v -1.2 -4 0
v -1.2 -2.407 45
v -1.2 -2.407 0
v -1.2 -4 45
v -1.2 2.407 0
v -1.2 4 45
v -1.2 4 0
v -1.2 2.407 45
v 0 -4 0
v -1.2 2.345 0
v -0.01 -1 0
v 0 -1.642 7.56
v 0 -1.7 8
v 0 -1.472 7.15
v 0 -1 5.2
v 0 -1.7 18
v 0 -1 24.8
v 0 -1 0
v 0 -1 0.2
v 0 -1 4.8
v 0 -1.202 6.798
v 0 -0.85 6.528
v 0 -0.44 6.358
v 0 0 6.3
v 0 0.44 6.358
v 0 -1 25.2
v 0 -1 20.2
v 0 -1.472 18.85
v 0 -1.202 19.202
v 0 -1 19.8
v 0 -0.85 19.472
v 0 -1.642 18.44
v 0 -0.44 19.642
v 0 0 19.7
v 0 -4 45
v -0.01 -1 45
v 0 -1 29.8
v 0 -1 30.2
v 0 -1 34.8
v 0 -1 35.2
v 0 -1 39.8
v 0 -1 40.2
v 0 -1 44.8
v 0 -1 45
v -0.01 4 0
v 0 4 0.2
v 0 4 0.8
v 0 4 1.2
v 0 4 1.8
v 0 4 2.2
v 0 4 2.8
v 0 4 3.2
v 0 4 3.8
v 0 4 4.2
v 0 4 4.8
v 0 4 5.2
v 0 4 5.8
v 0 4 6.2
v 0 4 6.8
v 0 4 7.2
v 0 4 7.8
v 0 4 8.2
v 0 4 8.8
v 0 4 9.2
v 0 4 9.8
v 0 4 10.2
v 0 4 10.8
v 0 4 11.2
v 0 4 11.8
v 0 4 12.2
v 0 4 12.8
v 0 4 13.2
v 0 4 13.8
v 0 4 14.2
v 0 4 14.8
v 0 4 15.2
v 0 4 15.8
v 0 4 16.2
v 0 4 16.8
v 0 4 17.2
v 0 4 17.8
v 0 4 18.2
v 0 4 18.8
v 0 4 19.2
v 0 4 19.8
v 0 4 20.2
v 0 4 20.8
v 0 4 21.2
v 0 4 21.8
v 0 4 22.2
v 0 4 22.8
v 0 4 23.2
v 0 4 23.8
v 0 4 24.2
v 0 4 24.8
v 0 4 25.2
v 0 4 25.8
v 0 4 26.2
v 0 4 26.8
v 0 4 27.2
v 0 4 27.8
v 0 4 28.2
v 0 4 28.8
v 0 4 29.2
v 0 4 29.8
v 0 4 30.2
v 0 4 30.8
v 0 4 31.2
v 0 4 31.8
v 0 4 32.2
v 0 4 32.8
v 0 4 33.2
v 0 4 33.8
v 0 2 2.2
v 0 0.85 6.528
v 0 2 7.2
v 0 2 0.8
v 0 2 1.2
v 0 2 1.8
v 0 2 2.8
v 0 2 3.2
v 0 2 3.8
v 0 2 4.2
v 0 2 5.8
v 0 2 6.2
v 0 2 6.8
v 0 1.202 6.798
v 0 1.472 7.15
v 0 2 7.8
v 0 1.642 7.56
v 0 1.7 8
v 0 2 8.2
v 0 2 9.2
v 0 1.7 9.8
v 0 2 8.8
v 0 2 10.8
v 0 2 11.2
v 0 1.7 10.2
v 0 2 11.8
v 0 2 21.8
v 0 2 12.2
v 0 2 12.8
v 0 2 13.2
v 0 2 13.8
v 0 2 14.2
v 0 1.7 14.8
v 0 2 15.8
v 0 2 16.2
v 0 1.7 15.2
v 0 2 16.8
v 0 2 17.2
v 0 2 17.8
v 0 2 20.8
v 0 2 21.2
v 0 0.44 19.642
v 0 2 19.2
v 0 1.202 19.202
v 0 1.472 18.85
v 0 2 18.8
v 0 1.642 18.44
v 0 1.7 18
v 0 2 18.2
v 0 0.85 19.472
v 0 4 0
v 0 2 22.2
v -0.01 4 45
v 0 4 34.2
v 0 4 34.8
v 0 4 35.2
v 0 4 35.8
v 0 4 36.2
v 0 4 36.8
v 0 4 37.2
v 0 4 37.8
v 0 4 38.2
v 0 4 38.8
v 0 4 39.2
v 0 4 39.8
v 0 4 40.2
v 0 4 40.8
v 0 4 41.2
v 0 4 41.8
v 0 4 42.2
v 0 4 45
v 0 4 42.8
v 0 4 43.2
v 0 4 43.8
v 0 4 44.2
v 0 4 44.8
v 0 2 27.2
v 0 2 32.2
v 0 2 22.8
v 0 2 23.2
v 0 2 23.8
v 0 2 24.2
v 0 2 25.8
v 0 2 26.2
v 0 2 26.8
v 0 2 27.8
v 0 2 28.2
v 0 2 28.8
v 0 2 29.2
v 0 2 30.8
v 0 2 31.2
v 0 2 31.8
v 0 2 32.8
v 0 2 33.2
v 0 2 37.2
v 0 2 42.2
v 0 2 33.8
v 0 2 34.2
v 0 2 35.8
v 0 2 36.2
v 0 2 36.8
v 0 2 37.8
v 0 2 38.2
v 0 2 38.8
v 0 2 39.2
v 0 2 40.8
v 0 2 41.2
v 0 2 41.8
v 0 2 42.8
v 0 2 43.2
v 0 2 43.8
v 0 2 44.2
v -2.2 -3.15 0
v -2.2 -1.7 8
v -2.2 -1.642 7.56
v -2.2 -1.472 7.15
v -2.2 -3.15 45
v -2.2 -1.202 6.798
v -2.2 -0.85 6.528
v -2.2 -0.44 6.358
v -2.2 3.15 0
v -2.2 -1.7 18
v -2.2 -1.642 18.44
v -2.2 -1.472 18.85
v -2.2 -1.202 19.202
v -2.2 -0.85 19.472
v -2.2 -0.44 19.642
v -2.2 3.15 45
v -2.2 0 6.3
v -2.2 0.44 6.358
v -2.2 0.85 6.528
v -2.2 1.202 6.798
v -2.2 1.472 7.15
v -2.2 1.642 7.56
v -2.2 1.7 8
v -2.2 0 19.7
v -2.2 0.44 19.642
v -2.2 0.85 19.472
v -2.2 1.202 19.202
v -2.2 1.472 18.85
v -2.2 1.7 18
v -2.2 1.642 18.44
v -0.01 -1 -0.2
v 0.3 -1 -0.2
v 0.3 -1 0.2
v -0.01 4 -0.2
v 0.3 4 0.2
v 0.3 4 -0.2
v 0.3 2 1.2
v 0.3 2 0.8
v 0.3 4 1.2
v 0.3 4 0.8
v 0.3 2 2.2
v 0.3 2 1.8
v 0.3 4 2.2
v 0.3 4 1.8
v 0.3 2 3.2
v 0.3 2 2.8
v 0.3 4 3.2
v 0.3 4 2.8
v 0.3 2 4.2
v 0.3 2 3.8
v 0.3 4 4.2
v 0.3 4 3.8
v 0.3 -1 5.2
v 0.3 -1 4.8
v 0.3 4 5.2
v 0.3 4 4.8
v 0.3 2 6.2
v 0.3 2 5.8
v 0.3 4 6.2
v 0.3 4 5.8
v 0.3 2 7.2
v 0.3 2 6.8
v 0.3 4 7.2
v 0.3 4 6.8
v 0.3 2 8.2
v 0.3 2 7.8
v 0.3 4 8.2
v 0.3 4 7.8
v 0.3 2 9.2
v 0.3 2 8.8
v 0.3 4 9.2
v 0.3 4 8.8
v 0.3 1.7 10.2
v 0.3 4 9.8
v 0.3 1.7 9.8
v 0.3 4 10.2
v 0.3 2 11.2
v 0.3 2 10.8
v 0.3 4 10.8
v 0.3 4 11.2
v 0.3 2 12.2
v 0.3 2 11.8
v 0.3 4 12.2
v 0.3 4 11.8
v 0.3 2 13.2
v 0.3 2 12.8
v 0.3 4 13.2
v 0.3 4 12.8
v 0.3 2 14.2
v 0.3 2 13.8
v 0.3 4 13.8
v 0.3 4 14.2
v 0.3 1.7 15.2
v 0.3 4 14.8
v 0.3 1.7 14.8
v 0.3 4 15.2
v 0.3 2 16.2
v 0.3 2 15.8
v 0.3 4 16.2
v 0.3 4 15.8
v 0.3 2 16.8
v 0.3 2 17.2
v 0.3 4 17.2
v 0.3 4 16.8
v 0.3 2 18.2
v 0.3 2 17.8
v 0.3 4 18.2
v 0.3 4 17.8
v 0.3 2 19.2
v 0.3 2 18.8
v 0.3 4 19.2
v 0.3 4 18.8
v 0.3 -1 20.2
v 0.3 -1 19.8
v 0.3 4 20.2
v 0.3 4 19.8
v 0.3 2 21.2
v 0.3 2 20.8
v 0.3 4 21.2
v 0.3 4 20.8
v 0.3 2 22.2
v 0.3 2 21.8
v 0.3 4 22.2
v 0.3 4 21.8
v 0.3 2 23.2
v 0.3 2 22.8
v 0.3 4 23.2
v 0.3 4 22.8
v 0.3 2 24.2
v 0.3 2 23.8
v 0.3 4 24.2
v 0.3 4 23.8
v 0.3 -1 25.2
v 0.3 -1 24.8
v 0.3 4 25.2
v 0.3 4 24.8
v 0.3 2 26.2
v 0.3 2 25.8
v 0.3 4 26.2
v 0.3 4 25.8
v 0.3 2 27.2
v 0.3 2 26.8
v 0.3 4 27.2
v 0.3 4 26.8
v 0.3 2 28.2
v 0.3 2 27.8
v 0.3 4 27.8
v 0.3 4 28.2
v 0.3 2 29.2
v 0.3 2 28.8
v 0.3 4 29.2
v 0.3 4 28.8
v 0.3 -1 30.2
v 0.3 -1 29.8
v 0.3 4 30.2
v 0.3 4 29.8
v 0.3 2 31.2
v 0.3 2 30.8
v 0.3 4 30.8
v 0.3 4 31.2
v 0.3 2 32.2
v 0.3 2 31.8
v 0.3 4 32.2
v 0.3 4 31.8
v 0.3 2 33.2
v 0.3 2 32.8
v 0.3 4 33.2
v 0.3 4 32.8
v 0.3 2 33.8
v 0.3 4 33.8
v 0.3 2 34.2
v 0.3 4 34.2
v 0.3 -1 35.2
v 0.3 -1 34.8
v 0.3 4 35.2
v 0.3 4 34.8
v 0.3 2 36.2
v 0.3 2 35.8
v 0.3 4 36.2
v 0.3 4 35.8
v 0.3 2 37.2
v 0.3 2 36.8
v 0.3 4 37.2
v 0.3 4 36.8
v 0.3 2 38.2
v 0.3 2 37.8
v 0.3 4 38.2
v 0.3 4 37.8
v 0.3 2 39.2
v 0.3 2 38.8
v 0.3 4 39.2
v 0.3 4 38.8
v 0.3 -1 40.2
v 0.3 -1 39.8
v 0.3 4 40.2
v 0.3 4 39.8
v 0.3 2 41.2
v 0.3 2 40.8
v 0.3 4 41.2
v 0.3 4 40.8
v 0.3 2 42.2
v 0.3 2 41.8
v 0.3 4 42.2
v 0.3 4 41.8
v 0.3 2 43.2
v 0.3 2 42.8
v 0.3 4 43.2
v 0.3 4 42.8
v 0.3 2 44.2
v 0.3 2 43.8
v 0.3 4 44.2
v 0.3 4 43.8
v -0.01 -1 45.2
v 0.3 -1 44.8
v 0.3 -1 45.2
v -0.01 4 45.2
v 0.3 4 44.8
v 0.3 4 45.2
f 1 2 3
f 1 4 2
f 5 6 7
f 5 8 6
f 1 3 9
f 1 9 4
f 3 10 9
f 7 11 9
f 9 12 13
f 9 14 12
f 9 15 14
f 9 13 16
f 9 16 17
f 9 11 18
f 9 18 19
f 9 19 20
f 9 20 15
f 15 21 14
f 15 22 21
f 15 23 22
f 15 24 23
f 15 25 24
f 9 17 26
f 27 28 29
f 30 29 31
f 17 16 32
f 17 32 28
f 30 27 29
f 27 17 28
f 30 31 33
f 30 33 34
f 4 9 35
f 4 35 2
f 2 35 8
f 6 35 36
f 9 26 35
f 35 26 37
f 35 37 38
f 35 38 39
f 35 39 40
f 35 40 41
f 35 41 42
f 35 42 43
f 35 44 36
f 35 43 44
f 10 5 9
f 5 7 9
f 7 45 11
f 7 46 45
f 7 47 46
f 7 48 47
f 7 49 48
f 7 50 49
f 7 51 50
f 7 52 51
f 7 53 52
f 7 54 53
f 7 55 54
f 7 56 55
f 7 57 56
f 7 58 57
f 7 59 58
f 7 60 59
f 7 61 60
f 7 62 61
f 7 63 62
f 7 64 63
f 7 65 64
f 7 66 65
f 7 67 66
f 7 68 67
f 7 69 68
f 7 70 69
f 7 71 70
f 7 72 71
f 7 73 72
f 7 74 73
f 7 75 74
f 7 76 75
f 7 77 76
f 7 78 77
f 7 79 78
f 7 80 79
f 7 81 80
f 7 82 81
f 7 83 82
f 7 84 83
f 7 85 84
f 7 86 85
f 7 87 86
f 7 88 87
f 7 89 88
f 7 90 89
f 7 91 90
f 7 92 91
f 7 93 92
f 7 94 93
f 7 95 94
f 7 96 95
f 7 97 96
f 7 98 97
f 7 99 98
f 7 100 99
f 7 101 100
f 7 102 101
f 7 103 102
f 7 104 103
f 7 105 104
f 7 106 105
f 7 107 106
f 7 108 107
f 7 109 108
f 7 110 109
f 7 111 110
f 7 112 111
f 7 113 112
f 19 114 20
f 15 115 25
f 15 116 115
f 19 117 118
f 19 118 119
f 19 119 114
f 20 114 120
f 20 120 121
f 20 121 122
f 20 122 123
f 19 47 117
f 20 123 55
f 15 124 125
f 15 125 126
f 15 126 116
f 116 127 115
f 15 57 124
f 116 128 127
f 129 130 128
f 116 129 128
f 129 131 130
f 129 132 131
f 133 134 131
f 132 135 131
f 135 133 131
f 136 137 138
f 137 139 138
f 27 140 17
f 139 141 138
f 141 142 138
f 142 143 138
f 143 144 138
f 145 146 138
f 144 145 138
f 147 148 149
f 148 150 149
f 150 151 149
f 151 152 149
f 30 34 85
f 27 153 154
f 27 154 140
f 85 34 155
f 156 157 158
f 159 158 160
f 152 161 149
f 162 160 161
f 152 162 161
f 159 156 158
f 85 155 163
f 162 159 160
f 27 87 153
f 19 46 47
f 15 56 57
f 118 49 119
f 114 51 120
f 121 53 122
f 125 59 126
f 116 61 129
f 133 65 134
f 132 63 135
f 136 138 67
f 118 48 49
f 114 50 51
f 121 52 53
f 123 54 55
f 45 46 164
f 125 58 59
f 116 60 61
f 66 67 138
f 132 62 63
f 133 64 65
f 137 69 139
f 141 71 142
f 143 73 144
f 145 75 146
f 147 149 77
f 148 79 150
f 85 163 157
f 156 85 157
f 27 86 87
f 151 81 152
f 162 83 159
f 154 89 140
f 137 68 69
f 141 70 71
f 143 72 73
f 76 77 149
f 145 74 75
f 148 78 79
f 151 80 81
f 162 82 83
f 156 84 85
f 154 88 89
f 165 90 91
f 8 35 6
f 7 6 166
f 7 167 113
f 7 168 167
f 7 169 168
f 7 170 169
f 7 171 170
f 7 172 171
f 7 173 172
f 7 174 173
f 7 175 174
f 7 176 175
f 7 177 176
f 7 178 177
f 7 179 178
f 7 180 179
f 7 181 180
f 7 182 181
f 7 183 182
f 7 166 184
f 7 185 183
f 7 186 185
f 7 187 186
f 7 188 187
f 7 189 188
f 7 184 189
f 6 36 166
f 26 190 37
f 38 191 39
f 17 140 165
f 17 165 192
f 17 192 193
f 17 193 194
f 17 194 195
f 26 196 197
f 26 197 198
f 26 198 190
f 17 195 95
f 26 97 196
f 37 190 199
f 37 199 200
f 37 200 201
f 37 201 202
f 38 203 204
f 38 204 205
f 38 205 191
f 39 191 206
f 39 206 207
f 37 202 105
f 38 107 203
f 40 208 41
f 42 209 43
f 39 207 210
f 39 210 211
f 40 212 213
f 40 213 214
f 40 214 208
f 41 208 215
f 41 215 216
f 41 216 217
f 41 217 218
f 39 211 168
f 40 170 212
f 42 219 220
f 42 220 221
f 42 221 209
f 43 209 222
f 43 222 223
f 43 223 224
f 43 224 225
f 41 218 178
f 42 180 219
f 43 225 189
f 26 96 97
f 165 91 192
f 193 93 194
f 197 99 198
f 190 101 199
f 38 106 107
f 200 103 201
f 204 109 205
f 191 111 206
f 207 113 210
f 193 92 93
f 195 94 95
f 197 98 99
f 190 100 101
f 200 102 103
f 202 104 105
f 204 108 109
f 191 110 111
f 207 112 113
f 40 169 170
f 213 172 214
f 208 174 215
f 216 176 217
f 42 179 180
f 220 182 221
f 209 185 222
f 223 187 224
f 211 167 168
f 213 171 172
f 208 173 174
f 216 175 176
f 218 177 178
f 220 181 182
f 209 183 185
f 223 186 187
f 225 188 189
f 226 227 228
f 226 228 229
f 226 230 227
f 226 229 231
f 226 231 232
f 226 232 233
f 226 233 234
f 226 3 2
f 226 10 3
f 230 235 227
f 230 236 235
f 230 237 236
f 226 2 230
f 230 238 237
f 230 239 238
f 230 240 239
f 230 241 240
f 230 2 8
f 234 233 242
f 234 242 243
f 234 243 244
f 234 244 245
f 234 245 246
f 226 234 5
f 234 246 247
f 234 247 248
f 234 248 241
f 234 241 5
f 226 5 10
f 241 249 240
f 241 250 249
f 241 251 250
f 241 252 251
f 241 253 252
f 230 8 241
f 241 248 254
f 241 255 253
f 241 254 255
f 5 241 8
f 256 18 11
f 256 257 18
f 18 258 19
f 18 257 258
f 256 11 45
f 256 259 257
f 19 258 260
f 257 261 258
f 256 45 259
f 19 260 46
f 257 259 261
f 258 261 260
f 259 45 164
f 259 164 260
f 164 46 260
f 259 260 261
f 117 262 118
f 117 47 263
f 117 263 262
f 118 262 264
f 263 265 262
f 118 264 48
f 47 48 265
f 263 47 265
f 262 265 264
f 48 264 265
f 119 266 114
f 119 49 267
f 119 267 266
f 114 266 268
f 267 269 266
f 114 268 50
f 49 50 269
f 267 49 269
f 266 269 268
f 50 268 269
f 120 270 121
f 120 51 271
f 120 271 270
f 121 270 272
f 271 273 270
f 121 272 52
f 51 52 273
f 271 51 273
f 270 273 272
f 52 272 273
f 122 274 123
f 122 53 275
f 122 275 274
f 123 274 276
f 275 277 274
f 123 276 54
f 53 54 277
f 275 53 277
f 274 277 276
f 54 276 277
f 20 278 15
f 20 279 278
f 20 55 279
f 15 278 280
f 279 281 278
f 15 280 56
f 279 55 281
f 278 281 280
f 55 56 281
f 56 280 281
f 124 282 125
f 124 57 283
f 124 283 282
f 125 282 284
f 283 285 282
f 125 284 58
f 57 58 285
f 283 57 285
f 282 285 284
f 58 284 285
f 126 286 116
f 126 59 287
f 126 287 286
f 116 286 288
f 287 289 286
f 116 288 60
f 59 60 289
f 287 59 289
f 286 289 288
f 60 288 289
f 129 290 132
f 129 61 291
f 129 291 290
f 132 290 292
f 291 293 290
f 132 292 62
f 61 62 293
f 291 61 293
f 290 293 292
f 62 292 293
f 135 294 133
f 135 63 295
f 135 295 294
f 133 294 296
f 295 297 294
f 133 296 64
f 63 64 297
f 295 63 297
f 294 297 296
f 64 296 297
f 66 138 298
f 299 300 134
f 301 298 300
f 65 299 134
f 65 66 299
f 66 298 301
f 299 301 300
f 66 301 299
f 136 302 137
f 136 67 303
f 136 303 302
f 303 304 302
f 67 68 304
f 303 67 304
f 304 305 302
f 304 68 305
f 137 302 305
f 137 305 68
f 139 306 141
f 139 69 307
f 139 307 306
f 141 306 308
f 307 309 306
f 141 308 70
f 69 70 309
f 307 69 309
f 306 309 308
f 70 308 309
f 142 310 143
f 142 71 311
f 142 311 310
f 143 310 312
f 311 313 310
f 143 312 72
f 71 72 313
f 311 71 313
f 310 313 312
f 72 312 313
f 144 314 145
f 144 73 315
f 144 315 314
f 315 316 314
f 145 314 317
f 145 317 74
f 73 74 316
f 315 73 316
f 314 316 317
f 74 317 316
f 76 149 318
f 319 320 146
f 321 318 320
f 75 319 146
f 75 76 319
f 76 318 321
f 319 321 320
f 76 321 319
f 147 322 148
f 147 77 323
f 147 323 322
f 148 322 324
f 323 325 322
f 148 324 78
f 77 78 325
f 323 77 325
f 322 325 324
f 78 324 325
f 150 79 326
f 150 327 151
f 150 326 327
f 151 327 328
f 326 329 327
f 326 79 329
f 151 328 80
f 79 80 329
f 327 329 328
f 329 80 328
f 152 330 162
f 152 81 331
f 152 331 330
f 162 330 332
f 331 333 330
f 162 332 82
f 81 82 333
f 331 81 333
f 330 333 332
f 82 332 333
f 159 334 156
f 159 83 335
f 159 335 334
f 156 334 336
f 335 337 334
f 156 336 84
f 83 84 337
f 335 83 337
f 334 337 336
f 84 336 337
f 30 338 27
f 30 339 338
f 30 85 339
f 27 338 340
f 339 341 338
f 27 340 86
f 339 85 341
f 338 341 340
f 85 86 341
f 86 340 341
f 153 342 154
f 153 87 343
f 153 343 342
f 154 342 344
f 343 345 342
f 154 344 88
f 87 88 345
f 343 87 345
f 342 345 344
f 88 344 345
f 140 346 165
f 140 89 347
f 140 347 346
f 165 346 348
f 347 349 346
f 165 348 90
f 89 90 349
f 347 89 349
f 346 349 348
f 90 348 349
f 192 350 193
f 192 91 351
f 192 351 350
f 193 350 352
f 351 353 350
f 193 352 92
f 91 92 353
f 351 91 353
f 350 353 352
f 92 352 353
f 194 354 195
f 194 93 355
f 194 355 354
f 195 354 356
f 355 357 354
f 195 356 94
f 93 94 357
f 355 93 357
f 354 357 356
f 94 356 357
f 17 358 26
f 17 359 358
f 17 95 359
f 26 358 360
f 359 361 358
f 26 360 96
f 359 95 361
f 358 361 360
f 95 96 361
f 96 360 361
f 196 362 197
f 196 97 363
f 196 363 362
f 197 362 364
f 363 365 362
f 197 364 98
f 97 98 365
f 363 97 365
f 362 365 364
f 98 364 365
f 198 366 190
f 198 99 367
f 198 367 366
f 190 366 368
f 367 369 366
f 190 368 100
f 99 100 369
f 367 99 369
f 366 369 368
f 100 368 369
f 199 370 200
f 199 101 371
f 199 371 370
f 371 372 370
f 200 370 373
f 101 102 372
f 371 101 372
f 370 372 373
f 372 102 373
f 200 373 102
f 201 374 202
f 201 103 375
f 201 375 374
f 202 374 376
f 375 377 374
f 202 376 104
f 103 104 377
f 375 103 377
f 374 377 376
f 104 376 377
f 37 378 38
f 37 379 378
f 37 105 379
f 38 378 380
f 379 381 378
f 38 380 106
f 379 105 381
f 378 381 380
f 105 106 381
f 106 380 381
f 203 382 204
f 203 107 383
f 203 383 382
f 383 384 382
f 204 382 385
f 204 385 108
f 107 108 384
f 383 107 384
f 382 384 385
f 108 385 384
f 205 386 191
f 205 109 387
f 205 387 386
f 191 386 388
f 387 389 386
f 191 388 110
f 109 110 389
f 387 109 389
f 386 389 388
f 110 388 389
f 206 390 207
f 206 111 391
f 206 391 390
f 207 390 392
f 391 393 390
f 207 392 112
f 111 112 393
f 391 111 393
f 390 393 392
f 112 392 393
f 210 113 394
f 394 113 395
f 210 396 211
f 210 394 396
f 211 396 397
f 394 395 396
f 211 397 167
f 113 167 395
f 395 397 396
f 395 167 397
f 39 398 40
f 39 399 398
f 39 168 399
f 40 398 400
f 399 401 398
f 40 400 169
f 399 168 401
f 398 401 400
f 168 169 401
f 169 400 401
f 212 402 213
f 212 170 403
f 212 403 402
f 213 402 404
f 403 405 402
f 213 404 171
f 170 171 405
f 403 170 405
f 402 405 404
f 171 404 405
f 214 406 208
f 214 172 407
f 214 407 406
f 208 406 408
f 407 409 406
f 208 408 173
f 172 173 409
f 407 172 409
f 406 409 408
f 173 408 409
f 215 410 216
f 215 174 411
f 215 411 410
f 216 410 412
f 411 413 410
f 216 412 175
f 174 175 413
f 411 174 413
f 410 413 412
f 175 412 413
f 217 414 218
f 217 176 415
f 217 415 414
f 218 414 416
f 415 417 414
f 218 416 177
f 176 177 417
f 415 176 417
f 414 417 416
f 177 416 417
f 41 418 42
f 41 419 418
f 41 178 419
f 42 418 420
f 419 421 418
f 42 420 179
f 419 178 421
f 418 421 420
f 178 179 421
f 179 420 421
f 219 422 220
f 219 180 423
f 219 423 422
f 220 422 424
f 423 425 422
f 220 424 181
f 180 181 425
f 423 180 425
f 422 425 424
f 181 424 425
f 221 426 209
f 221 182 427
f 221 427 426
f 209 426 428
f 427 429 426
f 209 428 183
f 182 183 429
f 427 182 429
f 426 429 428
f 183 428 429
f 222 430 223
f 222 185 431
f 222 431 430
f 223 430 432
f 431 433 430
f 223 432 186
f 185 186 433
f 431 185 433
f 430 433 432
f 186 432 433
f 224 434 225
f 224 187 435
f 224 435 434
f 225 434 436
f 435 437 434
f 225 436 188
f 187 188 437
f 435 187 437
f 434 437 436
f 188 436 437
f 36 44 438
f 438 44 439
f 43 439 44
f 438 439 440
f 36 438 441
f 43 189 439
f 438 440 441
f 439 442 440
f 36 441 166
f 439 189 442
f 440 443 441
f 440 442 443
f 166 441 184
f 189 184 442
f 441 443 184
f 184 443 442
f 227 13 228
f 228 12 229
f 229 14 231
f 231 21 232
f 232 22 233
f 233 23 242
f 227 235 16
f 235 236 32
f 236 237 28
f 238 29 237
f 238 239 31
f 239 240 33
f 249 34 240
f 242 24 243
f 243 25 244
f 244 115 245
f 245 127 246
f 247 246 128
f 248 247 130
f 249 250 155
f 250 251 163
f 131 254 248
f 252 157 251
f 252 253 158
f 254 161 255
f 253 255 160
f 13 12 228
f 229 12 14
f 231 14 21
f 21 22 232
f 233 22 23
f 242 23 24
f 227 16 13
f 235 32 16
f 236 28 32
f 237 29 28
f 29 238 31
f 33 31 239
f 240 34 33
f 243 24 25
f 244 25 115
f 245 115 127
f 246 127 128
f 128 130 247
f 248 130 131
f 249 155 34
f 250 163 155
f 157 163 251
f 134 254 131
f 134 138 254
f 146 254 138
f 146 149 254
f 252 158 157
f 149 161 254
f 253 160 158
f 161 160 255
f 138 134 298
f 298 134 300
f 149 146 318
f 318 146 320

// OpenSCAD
// =====================================================================
//  p25_scale_strip.scad - P25 float scale strip (slides in the P22 dovetail)
//  PROJECT SCRATCH · 05-engineering/cad/frame · units: mm · frame: local (strip along Z 0..45, ridged face at x = 0
//  looking +X, dovetail tang on -X).  Print face up, 0.12 mm layers.
//  Sources: mechanical.md section 6.4 (45 x 8 x 2, ridges every 1 mm 0.4 wide, long ticks every 5 mm, numerals
//  0/10/20/30, M3 lock slot), 11 P25.  Numerals are INKED after printing (no text() allowed); ridges are 0.3 proud.
// =====================================================================
include <lib_sp1.scad>
L = 45;  W = 8;  FACE_T = 1.2;  TANG_T = 1.0;  TANG_W_OPEN = 4.8;  TANG_W_BOT = 6.3;   // tang matches P22: opening 5.0, bottom 6.5, 1.0 deep
RIDGE_W = 0.4;  RIDGE_H = 0.3;  TICK_SHORT = 2;  TICK_LONG = 5;  LOCK_SLOT = [3.4, 10];
module p25_scale_strip() difference() {
    union() {
        box(-FACE_T, 0, -W / 2, W / 2, 0, L);
        translate([0, 0, 0]) linear_extrude(L) polygon([[-FACE_T + 0.01, -TANG_W_OPEN / 2], [-FACE_T - TANG_T, -TANG_W_BOT / 2], [-FACE_T - TANG_T, TANG_W_BOT / 2], [-FACE_T + 0.01, TANG_W_OPEN / 2]]);
        for (i = [0 : L]) box(-0.01, RIDGE_H, W / 2 - (i % 5 == 0 ? TICK_LONG : TICK_SHORT), W / 2, i - RIDGE_W / 2, i + RIDGE_W / 2);
    }
    hull() { cyl_x(LOCK_SLOT[0] / 2, -FACE_T - TANG_T - 1, 1, 0, 8, fn = 24); cyl_x(LOCK_SLOT[0] / 2, -FACE_T - TANG_T - 1, 1, 0, 8 + LOCK_SLOT[1], fn = 24); }
}
p25_scale_strip();
